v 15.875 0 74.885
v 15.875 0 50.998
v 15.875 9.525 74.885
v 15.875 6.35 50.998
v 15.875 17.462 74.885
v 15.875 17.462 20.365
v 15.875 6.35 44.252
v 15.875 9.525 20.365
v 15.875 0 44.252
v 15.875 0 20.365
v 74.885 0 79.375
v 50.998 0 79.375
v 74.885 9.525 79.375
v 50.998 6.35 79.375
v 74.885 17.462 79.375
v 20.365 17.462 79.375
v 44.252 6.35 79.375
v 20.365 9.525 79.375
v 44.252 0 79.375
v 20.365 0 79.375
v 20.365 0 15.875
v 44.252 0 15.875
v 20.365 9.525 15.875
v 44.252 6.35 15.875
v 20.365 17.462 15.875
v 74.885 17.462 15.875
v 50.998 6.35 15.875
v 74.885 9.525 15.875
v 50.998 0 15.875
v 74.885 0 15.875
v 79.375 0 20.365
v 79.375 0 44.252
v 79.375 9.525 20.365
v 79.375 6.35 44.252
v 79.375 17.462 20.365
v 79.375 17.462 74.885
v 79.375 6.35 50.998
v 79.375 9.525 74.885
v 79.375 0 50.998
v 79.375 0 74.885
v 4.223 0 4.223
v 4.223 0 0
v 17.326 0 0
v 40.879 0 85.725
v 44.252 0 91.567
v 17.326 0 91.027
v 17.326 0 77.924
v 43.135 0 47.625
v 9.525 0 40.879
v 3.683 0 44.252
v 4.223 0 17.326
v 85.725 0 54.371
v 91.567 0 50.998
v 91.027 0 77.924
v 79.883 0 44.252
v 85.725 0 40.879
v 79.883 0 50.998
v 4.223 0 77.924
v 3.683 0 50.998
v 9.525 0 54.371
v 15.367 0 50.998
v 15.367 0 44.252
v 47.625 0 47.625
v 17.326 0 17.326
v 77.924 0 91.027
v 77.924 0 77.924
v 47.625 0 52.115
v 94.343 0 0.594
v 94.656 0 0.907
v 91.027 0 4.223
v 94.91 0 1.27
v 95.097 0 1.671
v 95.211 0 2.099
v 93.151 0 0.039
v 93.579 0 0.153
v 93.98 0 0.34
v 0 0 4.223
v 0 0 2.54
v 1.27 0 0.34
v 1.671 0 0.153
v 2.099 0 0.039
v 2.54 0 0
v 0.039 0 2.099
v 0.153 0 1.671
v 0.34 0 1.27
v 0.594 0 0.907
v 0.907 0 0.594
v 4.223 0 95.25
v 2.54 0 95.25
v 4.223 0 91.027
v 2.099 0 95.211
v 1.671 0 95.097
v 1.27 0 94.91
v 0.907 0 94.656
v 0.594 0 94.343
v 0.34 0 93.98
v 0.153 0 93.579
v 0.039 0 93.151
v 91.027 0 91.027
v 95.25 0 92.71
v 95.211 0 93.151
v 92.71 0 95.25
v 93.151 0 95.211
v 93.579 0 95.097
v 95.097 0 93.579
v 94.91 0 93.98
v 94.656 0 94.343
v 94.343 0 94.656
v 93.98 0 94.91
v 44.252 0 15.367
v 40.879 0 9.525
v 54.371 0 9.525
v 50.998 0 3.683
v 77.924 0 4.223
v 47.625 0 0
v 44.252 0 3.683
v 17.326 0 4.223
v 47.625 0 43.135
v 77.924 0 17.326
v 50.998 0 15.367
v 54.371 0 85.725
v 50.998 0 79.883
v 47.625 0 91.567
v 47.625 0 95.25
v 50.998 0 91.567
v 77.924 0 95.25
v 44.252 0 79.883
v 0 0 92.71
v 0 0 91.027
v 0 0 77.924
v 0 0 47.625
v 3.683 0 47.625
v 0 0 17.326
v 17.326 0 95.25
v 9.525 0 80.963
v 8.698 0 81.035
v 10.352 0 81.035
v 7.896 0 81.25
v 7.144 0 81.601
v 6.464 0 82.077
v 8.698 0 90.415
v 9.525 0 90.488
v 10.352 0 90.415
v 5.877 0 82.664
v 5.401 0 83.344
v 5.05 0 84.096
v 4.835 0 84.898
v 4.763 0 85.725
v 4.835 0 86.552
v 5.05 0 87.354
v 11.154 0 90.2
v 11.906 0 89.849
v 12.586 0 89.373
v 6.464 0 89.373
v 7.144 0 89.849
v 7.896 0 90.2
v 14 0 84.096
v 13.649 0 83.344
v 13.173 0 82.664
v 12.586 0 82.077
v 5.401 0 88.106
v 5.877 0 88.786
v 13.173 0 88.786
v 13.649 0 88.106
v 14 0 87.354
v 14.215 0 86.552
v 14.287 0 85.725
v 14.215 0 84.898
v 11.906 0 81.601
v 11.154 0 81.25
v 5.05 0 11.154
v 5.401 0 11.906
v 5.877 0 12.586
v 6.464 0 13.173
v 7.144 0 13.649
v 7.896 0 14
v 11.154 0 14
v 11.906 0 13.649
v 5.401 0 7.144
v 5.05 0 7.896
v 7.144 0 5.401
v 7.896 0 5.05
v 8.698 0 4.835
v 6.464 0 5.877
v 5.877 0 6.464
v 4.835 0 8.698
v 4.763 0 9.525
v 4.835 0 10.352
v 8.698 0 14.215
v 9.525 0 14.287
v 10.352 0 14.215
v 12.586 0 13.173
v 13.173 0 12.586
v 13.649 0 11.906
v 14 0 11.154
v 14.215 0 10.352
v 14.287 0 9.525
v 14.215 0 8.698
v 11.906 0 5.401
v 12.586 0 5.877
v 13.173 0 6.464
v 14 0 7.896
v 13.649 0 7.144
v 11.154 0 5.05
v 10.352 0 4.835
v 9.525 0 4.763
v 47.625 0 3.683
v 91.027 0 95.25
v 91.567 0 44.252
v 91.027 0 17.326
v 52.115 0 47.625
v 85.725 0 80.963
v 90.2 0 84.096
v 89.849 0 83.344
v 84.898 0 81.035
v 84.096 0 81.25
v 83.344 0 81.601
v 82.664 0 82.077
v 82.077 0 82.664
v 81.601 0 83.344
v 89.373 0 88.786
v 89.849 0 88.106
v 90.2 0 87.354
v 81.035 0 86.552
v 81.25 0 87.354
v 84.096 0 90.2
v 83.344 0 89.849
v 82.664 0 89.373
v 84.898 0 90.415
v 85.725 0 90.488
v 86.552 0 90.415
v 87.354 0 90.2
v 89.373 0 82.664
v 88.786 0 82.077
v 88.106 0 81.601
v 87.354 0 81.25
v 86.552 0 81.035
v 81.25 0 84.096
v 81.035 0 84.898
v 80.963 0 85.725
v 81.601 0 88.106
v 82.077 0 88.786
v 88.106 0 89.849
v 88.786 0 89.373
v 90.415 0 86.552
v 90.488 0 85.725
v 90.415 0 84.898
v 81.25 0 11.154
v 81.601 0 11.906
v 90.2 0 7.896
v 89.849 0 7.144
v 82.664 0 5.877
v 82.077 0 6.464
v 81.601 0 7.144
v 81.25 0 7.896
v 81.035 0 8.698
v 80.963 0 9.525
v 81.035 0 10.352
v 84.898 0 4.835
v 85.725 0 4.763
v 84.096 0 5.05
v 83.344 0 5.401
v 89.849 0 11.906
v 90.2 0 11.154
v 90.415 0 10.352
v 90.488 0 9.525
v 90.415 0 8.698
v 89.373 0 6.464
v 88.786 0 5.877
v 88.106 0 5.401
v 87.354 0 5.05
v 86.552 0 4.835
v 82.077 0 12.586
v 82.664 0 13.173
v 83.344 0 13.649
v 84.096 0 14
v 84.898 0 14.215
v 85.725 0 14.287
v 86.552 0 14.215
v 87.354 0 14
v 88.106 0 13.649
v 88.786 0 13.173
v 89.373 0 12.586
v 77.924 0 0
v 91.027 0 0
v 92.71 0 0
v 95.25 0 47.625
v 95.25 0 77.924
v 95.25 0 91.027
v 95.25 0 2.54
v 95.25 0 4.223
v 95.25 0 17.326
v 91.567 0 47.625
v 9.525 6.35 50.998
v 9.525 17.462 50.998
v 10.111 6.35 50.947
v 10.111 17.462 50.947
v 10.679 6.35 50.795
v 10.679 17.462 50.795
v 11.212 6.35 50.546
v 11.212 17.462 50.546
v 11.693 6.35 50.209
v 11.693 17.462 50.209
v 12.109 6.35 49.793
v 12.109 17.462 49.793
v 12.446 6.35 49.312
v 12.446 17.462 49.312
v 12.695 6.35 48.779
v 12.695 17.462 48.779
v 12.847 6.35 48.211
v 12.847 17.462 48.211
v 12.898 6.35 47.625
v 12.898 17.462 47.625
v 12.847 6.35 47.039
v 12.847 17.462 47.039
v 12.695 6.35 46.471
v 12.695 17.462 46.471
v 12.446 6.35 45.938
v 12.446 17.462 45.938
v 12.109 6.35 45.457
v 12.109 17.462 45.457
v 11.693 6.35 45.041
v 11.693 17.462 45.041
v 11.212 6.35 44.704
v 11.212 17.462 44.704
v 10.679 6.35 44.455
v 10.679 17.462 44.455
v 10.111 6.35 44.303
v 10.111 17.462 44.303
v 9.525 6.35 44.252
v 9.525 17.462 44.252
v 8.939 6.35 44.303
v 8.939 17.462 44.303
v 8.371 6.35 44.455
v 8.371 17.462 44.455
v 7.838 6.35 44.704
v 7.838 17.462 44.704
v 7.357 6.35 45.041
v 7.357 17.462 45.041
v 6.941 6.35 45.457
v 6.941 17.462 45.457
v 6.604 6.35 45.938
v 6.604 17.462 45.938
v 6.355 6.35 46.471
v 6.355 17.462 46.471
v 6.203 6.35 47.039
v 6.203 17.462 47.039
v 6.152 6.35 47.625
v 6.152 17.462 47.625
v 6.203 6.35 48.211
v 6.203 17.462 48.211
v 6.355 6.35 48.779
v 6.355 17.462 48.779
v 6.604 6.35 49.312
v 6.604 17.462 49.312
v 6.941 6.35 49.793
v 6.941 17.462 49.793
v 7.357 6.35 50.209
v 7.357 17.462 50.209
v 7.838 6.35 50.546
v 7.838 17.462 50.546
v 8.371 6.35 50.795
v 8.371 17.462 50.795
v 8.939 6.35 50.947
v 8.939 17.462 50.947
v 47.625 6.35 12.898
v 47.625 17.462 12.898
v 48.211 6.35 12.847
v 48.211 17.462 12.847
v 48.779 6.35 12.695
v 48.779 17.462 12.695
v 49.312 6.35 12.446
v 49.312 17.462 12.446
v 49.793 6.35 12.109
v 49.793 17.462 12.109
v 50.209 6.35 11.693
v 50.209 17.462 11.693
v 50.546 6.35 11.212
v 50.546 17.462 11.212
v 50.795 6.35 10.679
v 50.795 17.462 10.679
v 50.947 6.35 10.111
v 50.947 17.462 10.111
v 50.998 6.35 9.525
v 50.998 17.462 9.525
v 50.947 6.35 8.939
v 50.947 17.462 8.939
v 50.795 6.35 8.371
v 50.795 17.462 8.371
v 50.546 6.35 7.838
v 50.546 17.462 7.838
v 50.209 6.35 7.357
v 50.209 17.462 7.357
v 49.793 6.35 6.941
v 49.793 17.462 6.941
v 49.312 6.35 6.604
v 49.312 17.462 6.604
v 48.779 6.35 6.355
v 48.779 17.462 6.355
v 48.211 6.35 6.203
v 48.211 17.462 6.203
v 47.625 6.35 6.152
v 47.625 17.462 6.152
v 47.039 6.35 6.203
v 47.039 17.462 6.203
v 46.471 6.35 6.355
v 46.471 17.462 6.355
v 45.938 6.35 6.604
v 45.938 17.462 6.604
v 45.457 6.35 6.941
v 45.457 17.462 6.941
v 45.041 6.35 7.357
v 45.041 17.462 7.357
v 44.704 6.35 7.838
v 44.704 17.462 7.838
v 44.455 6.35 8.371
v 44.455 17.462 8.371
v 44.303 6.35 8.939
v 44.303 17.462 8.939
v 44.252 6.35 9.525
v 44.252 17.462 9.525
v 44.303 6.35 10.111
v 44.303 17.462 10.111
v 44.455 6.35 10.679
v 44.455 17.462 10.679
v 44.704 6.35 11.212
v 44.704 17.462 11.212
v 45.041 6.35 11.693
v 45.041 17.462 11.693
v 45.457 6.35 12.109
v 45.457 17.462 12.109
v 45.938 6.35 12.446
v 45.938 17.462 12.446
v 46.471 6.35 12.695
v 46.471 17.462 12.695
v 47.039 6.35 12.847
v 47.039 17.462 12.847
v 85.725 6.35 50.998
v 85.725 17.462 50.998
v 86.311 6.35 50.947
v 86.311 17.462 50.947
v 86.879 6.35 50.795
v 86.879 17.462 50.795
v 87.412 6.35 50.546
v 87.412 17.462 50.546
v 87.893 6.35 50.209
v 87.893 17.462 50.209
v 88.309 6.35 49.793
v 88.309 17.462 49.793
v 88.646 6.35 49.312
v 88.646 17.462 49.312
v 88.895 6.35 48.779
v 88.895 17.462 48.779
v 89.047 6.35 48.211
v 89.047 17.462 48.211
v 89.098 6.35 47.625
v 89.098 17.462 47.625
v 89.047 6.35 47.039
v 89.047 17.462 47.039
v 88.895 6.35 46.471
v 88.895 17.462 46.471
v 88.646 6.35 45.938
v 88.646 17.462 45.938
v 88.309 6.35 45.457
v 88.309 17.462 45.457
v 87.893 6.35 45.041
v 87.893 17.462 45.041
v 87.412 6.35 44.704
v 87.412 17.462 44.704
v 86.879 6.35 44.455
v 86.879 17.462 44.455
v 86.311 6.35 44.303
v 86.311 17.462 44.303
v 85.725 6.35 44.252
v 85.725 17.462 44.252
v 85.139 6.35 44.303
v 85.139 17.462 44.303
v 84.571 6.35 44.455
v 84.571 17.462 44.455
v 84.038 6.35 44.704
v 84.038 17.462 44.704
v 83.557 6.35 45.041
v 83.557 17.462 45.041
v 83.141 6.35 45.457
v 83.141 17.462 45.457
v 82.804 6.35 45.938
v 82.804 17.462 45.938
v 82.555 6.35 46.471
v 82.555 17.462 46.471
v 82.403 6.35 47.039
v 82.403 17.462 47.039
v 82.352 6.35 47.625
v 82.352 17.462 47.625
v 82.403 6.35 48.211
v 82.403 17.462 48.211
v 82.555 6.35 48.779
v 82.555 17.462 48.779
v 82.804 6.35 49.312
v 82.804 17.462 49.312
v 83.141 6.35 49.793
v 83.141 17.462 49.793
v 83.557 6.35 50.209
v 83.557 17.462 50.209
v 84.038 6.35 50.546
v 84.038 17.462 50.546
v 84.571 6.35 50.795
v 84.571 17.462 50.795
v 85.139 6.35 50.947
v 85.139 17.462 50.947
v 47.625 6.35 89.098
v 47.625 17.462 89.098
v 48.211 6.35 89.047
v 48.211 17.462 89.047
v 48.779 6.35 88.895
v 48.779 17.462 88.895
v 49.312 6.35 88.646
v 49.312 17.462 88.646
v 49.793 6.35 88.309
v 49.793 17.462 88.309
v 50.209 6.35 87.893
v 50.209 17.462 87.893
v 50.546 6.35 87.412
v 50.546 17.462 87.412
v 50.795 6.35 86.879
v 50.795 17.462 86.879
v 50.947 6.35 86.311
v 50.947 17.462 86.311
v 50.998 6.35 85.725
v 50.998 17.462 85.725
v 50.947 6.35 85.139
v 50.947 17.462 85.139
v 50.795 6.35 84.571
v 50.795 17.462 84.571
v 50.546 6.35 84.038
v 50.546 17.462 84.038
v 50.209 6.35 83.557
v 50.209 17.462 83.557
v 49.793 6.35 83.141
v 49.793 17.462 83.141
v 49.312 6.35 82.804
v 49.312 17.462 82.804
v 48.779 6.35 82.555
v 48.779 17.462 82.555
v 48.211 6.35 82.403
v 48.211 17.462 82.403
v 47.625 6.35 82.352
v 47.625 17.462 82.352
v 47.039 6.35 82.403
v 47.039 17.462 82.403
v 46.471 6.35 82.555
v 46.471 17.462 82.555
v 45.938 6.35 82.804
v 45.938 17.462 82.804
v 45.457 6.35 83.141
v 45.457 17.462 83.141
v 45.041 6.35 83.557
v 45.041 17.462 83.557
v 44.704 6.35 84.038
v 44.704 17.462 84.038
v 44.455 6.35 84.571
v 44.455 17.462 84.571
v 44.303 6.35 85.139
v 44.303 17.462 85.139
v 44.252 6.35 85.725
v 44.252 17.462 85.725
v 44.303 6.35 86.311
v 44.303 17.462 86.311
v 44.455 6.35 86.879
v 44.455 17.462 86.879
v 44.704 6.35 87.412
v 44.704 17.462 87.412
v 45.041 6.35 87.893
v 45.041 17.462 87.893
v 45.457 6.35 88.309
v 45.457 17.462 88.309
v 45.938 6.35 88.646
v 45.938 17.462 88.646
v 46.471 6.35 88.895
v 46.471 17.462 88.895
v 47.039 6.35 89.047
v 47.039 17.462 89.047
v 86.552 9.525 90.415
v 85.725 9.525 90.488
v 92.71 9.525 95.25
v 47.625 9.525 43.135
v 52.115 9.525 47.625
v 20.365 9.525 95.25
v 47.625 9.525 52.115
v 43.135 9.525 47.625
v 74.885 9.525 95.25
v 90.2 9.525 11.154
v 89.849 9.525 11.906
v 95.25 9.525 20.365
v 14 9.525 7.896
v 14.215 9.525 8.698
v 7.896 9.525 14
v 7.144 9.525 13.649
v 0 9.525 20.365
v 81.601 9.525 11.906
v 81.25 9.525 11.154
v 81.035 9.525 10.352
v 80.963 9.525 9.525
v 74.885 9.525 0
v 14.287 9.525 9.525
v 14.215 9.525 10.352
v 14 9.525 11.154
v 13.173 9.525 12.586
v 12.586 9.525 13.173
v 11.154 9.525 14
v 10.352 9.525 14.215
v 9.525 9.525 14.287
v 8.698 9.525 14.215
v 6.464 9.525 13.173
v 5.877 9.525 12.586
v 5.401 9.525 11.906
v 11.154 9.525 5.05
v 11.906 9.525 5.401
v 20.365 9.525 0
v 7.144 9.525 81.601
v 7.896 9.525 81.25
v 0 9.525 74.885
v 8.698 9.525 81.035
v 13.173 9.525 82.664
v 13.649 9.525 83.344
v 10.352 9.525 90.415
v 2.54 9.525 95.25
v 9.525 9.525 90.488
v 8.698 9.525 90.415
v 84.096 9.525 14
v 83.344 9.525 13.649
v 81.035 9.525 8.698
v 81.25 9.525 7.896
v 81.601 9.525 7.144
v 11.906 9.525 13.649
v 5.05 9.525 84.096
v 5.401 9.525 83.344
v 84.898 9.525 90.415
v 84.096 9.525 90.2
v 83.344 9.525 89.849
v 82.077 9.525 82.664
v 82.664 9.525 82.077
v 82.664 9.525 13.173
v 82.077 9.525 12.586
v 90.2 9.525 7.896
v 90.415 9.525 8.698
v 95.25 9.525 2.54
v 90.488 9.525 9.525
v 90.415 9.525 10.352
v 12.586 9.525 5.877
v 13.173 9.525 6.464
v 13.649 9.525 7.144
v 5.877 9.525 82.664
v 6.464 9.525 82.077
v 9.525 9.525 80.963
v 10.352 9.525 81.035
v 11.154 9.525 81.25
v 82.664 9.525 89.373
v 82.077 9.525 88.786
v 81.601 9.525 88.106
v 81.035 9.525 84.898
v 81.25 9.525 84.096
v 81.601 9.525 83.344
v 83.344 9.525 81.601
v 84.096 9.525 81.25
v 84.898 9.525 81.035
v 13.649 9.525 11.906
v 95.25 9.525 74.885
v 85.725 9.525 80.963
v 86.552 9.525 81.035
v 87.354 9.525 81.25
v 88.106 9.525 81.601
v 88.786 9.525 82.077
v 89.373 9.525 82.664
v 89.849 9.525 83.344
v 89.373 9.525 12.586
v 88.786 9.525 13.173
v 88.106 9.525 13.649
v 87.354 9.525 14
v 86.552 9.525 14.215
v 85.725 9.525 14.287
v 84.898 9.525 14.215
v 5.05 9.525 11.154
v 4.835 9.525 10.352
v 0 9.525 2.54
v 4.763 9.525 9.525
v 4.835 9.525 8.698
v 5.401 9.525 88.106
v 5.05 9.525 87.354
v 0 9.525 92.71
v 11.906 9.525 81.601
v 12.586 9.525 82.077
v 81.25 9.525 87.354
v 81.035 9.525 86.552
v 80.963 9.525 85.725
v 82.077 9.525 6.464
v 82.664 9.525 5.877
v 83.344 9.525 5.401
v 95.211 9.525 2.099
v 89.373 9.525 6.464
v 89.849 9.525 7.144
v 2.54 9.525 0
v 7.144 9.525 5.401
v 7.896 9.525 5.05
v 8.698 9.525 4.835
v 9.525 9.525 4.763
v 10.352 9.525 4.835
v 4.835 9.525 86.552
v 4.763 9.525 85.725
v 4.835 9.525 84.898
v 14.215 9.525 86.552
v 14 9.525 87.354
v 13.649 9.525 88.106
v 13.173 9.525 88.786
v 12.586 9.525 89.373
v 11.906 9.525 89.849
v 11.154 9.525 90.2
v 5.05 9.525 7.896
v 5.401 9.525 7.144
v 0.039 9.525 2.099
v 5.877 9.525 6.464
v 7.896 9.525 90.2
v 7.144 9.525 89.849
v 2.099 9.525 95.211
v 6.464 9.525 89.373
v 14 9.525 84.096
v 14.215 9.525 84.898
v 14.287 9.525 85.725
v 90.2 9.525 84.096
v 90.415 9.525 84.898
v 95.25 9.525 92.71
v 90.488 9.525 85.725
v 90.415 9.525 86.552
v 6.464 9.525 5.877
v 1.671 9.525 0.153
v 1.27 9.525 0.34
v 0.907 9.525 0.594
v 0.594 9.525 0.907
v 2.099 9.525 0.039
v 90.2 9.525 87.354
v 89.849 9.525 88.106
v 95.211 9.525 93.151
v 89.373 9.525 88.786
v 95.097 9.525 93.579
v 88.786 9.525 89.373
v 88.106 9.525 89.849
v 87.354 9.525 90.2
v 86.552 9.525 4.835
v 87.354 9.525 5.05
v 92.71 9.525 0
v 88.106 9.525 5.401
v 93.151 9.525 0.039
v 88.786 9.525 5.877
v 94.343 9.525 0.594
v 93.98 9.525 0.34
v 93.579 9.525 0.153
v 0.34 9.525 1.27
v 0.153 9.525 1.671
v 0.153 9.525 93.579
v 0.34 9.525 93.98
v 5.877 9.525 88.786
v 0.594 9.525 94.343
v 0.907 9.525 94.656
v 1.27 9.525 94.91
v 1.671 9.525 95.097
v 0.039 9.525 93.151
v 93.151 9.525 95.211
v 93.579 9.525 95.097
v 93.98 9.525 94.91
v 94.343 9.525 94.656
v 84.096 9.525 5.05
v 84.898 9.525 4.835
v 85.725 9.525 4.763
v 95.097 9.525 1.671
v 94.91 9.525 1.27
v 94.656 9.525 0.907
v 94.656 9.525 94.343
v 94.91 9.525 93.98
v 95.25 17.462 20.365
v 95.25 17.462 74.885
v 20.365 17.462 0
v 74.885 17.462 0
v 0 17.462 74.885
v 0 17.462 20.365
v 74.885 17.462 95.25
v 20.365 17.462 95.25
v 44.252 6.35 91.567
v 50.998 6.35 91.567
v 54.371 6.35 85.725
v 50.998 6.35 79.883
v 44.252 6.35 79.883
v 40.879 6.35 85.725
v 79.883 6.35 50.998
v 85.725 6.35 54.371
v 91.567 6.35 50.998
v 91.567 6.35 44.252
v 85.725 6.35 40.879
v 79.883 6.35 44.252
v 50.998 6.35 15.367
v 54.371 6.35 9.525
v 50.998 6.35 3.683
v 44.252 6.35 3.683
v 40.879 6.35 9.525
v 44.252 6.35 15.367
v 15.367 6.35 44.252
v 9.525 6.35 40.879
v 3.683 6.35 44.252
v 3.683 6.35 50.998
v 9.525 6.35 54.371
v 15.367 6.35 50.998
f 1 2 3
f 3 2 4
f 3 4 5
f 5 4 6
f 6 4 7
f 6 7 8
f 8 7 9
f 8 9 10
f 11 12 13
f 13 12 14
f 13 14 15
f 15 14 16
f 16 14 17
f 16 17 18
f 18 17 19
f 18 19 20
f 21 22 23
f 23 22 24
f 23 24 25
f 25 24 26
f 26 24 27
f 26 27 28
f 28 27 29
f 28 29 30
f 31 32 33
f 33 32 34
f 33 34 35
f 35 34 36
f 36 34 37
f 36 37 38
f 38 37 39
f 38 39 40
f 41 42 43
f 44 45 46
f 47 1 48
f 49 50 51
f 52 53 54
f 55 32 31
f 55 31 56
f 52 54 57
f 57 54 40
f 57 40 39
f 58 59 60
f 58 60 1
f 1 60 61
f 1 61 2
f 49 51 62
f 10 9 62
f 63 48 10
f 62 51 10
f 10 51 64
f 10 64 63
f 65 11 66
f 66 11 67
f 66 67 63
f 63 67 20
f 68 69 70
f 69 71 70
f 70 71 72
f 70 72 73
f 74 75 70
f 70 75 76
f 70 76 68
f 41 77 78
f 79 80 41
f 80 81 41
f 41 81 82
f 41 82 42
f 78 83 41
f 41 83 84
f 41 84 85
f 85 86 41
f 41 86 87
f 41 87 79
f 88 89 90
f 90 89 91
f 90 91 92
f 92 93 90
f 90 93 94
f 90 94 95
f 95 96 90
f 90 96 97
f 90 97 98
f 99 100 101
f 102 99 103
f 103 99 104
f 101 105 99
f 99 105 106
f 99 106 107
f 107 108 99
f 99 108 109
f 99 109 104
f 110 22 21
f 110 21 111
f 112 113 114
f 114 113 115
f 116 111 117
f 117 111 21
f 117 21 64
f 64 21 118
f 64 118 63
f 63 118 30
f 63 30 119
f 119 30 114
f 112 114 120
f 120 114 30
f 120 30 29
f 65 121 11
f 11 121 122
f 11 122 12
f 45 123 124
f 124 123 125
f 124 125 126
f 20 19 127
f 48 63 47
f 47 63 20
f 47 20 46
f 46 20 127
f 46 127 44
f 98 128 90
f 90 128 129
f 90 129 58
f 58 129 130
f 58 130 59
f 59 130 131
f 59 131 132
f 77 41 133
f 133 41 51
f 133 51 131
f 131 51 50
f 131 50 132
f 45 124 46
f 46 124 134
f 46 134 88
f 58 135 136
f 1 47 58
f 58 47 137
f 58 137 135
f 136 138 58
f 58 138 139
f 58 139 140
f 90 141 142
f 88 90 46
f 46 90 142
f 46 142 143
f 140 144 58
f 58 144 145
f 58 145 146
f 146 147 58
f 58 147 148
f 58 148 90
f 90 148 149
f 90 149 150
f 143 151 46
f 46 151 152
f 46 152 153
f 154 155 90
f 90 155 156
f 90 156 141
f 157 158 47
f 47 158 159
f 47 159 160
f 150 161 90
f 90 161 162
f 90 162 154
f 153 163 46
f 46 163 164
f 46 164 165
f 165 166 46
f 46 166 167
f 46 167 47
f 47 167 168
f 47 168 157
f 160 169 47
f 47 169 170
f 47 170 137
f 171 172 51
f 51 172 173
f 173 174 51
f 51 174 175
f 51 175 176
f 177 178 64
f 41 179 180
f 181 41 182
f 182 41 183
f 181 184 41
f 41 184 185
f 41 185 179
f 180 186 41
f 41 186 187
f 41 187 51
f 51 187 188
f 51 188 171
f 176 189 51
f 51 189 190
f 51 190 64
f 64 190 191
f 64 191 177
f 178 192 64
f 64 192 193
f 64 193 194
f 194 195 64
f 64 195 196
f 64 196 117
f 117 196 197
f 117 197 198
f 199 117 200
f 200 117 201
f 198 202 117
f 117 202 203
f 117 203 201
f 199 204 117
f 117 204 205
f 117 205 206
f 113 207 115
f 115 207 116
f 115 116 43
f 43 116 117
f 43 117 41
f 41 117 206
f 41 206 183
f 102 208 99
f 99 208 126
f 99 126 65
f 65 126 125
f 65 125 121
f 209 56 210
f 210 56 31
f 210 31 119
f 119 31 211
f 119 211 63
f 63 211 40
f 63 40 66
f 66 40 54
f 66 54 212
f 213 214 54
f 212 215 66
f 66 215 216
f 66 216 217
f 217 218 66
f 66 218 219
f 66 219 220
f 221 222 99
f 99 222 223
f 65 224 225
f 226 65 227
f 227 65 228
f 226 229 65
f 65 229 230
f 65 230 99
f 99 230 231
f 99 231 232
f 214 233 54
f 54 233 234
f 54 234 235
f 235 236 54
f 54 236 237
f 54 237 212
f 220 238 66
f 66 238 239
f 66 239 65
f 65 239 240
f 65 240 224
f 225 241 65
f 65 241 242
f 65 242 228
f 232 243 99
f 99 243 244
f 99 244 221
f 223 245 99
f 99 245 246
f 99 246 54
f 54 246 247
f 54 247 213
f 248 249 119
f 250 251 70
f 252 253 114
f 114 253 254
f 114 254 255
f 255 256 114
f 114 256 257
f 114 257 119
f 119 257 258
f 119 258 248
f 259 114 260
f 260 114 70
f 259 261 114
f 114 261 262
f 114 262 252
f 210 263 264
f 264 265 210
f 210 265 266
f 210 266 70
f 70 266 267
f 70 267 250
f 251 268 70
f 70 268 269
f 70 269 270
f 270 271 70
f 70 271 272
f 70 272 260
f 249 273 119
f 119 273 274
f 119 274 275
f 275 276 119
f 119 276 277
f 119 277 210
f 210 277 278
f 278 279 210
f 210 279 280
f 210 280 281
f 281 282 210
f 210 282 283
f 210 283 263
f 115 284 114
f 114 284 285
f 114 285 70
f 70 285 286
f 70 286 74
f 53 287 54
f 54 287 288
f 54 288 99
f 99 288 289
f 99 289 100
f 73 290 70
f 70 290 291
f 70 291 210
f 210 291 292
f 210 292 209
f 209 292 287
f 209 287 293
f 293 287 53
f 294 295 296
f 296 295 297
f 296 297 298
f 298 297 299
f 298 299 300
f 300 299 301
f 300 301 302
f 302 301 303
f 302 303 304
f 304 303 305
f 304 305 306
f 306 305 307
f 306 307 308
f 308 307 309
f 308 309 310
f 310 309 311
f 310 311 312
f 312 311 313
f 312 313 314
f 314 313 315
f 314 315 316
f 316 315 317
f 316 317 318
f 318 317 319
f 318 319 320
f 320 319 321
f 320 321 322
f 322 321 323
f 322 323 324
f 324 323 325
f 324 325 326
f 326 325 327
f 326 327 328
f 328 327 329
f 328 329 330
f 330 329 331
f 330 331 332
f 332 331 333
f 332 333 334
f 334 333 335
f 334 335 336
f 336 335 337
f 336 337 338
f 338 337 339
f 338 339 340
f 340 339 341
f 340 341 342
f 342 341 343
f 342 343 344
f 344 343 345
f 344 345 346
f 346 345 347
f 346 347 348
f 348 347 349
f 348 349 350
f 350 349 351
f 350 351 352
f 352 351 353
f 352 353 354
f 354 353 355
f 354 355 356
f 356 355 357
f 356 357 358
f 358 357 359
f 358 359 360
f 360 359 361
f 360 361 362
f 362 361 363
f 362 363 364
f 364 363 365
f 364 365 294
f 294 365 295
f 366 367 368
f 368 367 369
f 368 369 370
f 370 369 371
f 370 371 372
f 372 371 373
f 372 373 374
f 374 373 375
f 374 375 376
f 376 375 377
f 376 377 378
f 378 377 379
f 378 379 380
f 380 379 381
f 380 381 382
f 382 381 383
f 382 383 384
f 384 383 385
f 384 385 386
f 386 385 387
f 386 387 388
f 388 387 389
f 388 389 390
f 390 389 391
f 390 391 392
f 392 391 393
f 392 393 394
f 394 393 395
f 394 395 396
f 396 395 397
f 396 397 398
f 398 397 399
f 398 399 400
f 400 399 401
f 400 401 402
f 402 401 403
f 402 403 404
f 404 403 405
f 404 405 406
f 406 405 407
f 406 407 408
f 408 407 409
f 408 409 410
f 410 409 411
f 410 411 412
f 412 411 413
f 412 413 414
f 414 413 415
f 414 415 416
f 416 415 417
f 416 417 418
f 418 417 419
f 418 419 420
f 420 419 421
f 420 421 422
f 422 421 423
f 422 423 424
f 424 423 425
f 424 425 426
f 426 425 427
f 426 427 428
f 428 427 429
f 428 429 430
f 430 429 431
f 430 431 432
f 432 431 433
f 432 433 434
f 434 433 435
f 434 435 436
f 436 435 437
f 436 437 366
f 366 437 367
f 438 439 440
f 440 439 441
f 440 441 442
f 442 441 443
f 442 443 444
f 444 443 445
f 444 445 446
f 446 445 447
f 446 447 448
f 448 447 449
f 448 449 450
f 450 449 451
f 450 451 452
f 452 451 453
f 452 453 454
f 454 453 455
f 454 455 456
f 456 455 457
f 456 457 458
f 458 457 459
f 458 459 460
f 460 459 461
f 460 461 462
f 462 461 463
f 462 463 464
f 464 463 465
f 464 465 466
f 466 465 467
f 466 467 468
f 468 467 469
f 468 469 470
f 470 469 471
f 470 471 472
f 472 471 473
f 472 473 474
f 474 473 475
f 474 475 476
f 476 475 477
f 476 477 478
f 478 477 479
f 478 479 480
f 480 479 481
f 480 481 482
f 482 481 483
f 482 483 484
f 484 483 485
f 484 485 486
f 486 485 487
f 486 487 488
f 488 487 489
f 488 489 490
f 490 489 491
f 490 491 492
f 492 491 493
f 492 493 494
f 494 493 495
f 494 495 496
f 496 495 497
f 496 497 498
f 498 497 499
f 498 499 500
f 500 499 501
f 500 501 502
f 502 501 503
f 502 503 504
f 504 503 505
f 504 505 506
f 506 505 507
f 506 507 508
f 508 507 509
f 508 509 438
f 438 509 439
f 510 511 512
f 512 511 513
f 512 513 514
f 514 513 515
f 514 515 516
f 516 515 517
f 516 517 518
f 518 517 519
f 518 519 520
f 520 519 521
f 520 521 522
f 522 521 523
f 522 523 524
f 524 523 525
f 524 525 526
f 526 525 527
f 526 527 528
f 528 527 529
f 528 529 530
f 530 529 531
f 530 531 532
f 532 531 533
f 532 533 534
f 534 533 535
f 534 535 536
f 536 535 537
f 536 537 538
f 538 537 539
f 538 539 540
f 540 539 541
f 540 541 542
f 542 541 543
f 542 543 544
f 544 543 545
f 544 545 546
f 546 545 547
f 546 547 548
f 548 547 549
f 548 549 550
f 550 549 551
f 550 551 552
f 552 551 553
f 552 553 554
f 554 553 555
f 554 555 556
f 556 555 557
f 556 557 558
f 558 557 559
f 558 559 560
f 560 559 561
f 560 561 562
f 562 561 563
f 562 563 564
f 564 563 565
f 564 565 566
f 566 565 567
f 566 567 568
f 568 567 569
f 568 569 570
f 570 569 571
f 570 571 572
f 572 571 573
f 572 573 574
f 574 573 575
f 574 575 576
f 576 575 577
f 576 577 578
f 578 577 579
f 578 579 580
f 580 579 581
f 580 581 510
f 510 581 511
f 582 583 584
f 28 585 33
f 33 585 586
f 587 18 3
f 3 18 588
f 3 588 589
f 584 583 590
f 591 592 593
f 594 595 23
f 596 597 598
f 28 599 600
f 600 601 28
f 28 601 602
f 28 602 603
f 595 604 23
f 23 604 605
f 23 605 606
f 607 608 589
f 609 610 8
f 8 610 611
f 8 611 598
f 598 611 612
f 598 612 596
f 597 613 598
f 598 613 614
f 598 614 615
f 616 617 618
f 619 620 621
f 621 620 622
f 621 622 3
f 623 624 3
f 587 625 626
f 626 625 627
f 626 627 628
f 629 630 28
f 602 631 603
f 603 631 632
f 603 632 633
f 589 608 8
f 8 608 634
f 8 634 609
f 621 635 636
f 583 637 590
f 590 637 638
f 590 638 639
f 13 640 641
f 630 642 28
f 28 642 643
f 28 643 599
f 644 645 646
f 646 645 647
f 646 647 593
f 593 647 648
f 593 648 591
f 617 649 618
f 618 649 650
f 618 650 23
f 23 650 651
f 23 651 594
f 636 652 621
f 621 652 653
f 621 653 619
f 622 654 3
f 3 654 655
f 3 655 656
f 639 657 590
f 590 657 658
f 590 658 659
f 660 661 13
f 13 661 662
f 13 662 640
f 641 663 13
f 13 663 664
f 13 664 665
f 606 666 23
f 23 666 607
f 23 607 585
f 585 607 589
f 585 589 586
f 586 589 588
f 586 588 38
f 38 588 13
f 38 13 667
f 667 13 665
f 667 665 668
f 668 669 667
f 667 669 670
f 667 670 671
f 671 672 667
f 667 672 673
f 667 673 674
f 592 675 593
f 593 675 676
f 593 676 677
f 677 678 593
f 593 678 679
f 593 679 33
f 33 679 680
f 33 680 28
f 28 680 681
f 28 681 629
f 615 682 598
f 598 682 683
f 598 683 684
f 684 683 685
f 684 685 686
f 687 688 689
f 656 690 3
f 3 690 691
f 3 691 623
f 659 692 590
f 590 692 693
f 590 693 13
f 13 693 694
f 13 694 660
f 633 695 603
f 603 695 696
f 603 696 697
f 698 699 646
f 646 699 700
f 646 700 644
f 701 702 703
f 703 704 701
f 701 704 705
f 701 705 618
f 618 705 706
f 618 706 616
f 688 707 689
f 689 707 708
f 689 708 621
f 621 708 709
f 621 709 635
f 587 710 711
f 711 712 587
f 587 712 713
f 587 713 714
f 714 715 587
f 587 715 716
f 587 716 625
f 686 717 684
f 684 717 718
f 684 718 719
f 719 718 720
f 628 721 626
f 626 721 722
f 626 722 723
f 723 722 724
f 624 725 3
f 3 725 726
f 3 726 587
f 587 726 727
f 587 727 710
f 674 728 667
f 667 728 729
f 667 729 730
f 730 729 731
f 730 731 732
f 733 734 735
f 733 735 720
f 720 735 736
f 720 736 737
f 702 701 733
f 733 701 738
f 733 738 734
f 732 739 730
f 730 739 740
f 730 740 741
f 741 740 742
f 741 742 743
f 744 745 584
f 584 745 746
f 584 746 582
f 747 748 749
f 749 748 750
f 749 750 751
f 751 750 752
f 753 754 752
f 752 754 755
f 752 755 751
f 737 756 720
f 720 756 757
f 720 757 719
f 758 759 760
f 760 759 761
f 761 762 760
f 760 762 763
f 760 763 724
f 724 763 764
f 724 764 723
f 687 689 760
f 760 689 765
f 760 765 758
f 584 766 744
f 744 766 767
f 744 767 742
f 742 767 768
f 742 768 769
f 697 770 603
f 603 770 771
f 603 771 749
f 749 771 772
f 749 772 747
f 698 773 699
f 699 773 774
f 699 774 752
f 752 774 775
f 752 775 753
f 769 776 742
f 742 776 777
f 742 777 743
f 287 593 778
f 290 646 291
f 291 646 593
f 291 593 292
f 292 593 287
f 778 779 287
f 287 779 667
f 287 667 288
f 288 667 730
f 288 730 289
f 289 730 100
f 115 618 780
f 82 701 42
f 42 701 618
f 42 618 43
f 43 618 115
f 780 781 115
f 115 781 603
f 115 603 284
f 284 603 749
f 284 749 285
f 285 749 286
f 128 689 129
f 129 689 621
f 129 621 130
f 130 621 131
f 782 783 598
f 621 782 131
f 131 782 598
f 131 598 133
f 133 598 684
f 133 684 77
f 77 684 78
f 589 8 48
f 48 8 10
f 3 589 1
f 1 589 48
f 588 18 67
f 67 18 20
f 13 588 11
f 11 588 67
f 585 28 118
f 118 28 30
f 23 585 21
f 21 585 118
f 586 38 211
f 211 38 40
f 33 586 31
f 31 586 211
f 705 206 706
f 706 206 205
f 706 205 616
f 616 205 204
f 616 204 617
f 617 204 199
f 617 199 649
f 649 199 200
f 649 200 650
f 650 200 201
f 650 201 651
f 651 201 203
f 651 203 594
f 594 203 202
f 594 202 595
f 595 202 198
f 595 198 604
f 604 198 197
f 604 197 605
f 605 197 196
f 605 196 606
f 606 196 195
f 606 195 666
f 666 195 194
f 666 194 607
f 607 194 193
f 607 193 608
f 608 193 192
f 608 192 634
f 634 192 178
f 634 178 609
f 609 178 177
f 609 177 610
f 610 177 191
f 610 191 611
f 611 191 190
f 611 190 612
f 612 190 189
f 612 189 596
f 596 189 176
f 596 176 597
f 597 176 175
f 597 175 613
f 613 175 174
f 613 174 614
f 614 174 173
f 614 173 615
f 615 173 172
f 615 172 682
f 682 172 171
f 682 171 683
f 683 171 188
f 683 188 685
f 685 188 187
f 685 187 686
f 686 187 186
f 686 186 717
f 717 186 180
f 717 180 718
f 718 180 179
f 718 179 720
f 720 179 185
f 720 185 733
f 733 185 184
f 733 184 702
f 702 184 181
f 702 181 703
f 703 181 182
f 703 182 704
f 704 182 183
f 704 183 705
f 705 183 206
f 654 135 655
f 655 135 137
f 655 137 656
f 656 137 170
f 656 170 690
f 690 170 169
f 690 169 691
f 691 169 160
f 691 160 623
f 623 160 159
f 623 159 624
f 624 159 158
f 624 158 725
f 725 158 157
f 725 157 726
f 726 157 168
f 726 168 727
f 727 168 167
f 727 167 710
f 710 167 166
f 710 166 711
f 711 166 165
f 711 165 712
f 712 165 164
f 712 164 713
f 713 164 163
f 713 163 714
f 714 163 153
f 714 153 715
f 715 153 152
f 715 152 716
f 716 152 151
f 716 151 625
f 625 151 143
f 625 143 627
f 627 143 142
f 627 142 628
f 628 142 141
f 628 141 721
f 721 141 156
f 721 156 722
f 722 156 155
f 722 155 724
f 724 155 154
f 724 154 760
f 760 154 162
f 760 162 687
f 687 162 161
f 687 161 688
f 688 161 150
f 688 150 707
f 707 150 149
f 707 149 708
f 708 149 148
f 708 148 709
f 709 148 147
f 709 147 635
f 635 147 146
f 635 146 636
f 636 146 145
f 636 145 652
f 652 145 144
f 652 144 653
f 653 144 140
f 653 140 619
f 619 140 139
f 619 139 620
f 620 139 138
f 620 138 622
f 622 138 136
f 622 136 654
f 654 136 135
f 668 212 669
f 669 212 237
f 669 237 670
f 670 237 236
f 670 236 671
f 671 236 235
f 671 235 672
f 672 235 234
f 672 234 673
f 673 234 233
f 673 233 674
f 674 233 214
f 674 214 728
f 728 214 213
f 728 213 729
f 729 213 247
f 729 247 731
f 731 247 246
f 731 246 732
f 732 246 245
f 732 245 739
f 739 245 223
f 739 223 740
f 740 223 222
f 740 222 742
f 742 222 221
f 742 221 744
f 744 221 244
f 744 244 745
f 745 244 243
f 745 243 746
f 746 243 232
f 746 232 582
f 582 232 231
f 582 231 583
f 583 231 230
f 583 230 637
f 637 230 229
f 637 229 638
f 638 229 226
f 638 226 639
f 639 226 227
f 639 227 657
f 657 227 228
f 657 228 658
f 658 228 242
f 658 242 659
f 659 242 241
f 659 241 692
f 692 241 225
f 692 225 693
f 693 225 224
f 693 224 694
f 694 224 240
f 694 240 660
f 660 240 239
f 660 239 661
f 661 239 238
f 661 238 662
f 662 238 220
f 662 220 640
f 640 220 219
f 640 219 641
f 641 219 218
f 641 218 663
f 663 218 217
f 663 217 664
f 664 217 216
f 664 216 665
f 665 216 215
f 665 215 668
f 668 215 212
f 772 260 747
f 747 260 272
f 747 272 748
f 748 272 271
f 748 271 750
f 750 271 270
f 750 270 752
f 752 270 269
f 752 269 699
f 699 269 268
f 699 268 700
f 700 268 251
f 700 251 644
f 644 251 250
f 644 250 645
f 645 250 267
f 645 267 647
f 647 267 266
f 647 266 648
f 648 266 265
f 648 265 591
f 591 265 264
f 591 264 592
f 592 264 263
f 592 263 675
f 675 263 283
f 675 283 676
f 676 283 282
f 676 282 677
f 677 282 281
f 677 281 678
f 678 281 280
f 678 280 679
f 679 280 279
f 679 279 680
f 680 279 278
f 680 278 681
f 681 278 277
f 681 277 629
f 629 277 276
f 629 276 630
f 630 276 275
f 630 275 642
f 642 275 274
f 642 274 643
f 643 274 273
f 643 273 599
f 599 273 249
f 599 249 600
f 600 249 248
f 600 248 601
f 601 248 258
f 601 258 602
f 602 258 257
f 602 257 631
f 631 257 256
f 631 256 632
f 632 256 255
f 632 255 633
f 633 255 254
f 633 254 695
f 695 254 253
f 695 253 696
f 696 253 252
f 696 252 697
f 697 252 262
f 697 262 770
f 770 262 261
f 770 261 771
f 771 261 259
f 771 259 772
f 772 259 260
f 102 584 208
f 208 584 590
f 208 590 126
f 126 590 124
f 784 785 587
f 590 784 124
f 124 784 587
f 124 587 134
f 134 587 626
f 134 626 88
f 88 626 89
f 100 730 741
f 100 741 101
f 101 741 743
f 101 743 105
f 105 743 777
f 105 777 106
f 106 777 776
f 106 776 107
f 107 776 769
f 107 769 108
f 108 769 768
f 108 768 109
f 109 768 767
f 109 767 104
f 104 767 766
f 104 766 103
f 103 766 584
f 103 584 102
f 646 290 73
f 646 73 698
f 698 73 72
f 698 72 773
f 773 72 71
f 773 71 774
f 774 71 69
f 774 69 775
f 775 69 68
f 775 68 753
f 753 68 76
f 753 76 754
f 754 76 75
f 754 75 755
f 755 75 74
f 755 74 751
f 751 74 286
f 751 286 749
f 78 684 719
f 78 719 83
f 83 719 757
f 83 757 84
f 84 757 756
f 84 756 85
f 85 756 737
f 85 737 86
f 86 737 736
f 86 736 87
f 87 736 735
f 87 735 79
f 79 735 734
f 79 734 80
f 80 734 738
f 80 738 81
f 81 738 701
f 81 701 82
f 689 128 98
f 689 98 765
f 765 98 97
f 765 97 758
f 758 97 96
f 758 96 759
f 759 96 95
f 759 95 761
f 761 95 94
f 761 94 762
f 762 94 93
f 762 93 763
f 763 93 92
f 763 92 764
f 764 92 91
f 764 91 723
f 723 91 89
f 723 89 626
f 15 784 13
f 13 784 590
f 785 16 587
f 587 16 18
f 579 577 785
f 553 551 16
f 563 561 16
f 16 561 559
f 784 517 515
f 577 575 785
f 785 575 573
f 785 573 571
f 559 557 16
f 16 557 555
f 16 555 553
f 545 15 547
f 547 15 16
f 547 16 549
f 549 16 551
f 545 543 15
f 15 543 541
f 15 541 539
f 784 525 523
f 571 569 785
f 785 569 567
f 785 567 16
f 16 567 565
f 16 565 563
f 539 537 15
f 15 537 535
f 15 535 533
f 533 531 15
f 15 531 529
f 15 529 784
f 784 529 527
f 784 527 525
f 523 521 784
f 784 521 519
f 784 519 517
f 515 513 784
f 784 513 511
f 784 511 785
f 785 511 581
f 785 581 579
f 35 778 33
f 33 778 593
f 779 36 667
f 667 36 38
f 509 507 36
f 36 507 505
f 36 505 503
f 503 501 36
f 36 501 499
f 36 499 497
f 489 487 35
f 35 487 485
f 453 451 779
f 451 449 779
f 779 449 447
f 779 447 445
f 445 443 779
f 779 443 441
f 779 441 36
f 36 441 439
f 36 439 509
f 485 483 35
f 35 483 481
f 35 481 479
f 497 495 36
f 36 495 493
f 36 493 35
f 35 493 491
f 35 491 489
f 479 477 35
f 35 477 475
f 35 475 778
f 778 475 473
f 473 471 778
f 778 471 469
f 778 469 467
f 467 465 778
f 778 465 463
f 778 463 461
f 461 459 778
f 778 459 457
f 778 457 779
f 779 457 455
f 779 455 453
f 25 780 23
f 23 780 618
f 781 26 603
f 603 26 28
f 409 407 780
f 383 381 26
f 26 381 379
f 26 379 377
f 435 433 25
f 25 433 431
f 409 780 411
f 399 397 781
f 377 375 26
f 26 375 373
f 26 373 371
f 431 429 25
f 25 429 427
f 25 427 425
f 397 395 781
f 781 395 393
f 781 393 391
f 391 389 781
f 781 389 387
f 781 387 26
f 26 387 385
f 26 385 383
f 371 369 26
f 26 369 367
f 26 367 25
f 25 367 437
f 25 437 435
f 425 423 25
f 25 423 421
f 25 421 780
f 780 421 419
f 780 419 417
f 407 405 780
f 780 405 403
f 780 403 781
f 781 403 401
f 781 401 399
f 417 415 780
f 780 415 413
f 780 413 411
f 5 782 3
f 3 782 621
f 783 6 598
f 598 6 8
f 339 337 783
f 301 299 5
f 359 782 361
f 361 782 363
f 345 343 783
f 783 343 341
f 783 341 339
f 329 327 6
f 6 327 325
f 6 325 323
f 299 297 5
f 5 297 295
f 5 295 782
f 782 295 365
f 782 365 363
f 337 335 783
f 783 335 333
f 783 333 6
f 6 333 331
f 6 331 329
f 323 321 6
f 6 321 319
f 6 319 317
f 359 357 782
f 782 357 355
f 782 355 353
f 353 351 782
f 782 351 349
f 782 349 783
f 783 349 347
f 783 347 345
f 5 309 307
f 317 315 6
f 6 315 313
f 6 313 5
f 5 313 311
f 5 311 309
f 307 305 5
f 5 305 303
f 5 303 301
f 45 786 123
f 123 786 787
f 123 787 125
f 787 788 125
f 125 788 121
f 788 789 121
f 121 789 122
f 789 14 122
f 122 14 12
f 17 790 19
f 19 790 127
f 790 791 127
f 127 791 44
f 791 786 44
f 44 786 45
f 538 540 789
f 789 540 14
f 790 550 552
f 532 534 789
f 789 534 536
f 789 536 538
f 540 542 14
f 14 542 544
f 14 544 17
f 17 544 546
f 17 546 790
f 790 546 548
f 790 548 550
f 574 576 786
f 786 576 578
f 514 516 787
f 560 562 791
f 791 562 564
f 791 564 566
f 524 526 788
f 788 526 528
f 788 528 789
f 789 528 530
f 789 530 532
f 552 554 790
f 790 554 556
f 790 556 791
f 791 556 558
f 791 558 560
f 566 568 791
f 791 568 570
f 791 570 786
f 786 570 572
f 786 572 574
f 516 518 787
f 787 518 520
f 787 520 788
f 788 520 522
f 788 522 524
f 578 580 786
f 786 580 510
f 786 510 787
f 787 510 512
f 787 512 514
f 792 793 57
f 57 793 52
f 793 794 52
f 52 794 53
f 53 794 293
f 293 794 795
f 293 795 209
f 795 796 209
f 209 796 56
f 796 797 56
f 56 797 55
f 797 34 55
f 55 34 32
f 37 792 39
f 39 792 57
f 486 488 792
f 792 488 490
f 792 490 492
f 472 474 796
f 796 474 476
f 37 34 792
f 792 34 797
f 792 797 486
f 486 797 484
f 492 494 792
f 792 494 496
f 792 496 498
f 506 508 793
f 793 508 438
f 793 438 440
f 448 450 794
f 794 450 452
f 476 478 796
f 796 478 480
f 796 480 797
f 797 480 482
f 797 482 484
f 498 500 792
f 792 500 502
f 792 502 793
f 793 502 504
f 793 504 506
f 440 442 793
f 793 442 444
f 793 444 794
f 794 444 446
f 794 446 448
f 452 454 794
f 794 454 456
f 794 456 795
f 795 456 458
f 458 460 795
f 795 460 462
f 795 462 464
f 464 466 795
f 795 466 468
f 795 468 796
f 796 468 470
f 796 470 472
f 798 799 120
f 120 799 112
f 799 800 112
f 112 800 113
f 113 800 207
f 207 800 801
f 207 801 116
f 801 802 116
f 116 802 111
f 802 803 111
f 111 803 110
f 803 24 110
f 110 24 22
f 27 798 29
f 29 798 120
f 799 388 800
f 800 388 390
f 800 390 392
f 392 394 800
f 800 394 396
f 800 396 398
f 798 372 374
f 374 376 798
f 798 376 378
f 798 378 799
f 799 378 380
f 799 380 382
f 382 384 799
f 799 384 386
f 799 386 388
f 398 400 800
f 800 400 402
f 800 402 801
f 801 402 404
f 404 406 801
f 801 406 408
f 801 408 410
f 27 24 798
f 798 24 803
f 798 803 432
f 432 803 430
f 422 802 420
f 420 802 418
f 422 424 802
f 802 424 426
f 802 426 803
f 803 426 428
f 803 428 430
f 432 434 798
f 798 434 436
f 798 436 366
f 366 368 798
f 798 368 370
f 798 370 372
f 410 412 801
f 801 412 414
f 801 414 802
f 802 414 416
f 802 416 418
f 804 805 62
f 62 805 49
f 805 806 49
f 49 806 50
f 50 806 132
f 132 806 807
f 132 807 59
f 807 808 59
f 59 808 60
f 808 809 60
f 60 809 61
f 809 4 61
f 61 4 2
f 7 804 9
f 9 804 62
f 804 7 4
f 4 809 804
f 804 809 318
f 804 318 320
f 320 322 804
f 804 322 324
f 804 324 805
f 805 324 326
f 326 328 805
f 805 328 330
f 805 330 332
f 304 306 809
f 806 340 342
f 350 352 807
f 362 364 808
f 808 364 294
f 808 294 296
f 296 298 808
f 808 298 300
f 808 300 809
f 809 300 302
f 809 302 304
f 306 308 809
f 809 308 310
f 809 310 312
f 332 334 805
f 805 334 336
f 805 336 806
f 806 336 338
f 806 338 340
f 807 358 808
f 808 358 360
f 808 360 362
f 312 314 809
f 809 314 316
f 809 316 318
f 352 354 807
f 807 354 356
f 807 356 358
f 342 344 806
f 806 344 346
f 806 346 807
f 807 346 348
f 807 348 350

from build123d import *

# Parameters (mm, degrees)
SKETCH1_W           = 95.25
SKETCH1_H           = 95.25
SKETCH1_R           = 4.7625
BOSS_EXTRUDE1_DEPTH = 9.525
FILLET1_R           = 2.54
SKETCH3_W           = 54.519743878
SKETCH3_H           = 15.875
SKETCH3_W_2         = 15.875
SKETCH3_H_2         = 54.519743878
BOSS_EXTRUDE3_DEPTH = 7.9375
SKETCH4_R           = 3.3734375
CUT_EXTRUDE1_DEPTH  = 18.4625
SKETCH5_R           = 3.3734375
SKETCH5_W           = 0.508
SKETCH5_H           = 6.745760546
SKETCH5_W_2         = 6.745760546
SKETCH5_H_2         = 0.508
CUT_EXTRUDE2_DEPTH  = 6.35


with BuildPart() as part:
    # Sketch1 → Boss-Extrude1 (new body)
    with BuildSketch(Plane(origin=(0, 0, 0), x_dir=(1, 0, 0), z_dir=(0, 1, 0))):
        with Locations((47.625, -47.625)):
            Rectangle(SKETCH1_W, SKETCH1_H)
        with Locations((9.525, -85.725)):
            Circle(SKETCH1_R, mode=Mode.SUBTRACT)
        Polygon((15.875, -74.884871939), (15.875, -20.365128061), (43.134871939, -47.625), align=None, mode=Mode.SUBTRACT)
        with Locations((85.725, -85.725)):
            Circle(SKETCH1_R, mode=Mode.SUBTRACT)
        Polygon((74.884871939, -79.375), (20.365128061, -79.375), (47.625, -52.115128061), align=None, mode=Mode.SUBTRACT)
        with Locations((9.525, -9.525)):
            Circle(SKETCH1_R, mode=Mode.SUBTRACT)
        Polygon((52.115128061, -47.625), (79.375, -20.365128061), (79.375, -74.884871939), align=None, mode=Mode.SUBTRACT)
        Polygon((47.625, -43.134871939), (20.365128061, -15.875), (74.884871939, -15.875), align=None, mode=Mode.SUBTRACT)
        with Locations((85.725, -9.525)):
            Circle(SKETCH1_R, mode=Mode.SUBTRACT)
    extrude(amount=BOSS_EXTRUDE1_DEPTH)

    # Fillet1
    fillet1_edges = [part.edges().sort_by_distance(p)[0] for p in [
        (95.25, 4.7625, 95.25),
        (0, 4.7625, 95.25),
        (0, 4.7625, 0),
        (95.25, 4.7625, 0),
    ]]
    fillet(fillet1_edges, radius=FILLET1_R)

    # Sketch3 → Boss-Extrude3 (add)
    with BuildSketch(Plane(origin=(0, 9.525, 0), x_dir=(1, 0, 0), z_dir=(0, 1, 0))):
        with Locations((47.625, -7.9375)):
            Rectangle(SKETCH3_W, SKETCH3_H)
        with Locations((87.3125, -47.625)):
            Rectangle(SKETCH3_W_2, SKETCH3_H_2)
        with Locations((47.625, -87.3125)):
            Rectangle(SKETCH3_W, SKETCH3_H)
        with Locations((7.9375, -47.625)):
            Rectangle(SKETCH3_W_2, SKETCH3_H_2)
    extrude(amount=BOSS_EXTRUDE3_DEPTH)

    # Sketch4 → Cut-Extrude1 (cut, through all)
    with BuildSketch(Plane(origin=(0, 17.4625, 0), x_dir=(1, 0, 0), z_dir=(0, 1, 0))):
        with Locations((85.725, -47.625)):
            Circle(SKETCH4_R)
        with Locations((47.625, -85.725)):
            Circle(SKETCH4_R)
        with Locations((9.525, -47.625)):
            Circle(SKETCH4_R)
        with Locations((47.625, -9.525)):
            Circle(SKETCH4_R)
    extrude(amount=-CUT_EXTRUDE1_DEPTH, mode=Mode.SUBTRACT)

    # Sketch5 → Cut-Extrude2 (cut)
    with BuildSketch(Plane.XZ):
        Polygon((85.725, 54.370760545), (79.883, 50.997880273), (79.883, 44.252119727), (85.725, 40.879239455), (91.567, 44.252119727), (91.567, 50.997880273), align=None)
        with Locations((85.725, 47.625)):
            Circle(SKETCH5_R, mode=Mode.SUBTRACT)
        with Locations((79.629, 47.625)):
            Rectangle(SKETCH5_W, SKETCH5_H)
        Polygon((50.997880273, 91.567), (44.252119727, 91.567), (40.879239455, 85.725), (44.252119727, 79.883), (50.997880273, 79.883), (54.370760545, 85.725), align=None)
        with Locations((47.625, 85.725)):
            Circle(SKETCH5_R, mode=Mode.SUBTRACT)
        with Locations((47.625, 79.629)):
            Rectangle(SKETCH5_W_2, SKETCH5_H_2)
        Polygon((15.367, 44.252119727), (15.367, 50.997880273), (9.525, 54.370760545), (3.683, 50.997880273), (3.683, 44.252119727), (9.525, 40.879239455), align=None)
        with Locations((9.525, 47.625)):
            Circle(SKETCH5_R, mode=Mode.SUBTRACT)
        with Locations((15.621, 47.625)):
            Rectangle(SKETCH5_W, SKETCH5_H)
        Polygon((50.997880273, 15.367), (44.252119727, 15.367), (40.879239455, 9.525), (44.252119727, 3.683), (50.997880273, 3.683), (54.370760545, 9.525), align=None)
        with Locations((47.625, 9.525)):
            Circle(SKETCH5_R, mode=Mode.SUBTRACT)
        with Locations((47.625, 15.621)):
            Rectangle(SKETCH5_W_2, SKETCH5_H_2)
    extrude(amount=-CUT_EXTRUDE2_DEPTH, mode=Mode.SUBTRACT)


solid = part.part
